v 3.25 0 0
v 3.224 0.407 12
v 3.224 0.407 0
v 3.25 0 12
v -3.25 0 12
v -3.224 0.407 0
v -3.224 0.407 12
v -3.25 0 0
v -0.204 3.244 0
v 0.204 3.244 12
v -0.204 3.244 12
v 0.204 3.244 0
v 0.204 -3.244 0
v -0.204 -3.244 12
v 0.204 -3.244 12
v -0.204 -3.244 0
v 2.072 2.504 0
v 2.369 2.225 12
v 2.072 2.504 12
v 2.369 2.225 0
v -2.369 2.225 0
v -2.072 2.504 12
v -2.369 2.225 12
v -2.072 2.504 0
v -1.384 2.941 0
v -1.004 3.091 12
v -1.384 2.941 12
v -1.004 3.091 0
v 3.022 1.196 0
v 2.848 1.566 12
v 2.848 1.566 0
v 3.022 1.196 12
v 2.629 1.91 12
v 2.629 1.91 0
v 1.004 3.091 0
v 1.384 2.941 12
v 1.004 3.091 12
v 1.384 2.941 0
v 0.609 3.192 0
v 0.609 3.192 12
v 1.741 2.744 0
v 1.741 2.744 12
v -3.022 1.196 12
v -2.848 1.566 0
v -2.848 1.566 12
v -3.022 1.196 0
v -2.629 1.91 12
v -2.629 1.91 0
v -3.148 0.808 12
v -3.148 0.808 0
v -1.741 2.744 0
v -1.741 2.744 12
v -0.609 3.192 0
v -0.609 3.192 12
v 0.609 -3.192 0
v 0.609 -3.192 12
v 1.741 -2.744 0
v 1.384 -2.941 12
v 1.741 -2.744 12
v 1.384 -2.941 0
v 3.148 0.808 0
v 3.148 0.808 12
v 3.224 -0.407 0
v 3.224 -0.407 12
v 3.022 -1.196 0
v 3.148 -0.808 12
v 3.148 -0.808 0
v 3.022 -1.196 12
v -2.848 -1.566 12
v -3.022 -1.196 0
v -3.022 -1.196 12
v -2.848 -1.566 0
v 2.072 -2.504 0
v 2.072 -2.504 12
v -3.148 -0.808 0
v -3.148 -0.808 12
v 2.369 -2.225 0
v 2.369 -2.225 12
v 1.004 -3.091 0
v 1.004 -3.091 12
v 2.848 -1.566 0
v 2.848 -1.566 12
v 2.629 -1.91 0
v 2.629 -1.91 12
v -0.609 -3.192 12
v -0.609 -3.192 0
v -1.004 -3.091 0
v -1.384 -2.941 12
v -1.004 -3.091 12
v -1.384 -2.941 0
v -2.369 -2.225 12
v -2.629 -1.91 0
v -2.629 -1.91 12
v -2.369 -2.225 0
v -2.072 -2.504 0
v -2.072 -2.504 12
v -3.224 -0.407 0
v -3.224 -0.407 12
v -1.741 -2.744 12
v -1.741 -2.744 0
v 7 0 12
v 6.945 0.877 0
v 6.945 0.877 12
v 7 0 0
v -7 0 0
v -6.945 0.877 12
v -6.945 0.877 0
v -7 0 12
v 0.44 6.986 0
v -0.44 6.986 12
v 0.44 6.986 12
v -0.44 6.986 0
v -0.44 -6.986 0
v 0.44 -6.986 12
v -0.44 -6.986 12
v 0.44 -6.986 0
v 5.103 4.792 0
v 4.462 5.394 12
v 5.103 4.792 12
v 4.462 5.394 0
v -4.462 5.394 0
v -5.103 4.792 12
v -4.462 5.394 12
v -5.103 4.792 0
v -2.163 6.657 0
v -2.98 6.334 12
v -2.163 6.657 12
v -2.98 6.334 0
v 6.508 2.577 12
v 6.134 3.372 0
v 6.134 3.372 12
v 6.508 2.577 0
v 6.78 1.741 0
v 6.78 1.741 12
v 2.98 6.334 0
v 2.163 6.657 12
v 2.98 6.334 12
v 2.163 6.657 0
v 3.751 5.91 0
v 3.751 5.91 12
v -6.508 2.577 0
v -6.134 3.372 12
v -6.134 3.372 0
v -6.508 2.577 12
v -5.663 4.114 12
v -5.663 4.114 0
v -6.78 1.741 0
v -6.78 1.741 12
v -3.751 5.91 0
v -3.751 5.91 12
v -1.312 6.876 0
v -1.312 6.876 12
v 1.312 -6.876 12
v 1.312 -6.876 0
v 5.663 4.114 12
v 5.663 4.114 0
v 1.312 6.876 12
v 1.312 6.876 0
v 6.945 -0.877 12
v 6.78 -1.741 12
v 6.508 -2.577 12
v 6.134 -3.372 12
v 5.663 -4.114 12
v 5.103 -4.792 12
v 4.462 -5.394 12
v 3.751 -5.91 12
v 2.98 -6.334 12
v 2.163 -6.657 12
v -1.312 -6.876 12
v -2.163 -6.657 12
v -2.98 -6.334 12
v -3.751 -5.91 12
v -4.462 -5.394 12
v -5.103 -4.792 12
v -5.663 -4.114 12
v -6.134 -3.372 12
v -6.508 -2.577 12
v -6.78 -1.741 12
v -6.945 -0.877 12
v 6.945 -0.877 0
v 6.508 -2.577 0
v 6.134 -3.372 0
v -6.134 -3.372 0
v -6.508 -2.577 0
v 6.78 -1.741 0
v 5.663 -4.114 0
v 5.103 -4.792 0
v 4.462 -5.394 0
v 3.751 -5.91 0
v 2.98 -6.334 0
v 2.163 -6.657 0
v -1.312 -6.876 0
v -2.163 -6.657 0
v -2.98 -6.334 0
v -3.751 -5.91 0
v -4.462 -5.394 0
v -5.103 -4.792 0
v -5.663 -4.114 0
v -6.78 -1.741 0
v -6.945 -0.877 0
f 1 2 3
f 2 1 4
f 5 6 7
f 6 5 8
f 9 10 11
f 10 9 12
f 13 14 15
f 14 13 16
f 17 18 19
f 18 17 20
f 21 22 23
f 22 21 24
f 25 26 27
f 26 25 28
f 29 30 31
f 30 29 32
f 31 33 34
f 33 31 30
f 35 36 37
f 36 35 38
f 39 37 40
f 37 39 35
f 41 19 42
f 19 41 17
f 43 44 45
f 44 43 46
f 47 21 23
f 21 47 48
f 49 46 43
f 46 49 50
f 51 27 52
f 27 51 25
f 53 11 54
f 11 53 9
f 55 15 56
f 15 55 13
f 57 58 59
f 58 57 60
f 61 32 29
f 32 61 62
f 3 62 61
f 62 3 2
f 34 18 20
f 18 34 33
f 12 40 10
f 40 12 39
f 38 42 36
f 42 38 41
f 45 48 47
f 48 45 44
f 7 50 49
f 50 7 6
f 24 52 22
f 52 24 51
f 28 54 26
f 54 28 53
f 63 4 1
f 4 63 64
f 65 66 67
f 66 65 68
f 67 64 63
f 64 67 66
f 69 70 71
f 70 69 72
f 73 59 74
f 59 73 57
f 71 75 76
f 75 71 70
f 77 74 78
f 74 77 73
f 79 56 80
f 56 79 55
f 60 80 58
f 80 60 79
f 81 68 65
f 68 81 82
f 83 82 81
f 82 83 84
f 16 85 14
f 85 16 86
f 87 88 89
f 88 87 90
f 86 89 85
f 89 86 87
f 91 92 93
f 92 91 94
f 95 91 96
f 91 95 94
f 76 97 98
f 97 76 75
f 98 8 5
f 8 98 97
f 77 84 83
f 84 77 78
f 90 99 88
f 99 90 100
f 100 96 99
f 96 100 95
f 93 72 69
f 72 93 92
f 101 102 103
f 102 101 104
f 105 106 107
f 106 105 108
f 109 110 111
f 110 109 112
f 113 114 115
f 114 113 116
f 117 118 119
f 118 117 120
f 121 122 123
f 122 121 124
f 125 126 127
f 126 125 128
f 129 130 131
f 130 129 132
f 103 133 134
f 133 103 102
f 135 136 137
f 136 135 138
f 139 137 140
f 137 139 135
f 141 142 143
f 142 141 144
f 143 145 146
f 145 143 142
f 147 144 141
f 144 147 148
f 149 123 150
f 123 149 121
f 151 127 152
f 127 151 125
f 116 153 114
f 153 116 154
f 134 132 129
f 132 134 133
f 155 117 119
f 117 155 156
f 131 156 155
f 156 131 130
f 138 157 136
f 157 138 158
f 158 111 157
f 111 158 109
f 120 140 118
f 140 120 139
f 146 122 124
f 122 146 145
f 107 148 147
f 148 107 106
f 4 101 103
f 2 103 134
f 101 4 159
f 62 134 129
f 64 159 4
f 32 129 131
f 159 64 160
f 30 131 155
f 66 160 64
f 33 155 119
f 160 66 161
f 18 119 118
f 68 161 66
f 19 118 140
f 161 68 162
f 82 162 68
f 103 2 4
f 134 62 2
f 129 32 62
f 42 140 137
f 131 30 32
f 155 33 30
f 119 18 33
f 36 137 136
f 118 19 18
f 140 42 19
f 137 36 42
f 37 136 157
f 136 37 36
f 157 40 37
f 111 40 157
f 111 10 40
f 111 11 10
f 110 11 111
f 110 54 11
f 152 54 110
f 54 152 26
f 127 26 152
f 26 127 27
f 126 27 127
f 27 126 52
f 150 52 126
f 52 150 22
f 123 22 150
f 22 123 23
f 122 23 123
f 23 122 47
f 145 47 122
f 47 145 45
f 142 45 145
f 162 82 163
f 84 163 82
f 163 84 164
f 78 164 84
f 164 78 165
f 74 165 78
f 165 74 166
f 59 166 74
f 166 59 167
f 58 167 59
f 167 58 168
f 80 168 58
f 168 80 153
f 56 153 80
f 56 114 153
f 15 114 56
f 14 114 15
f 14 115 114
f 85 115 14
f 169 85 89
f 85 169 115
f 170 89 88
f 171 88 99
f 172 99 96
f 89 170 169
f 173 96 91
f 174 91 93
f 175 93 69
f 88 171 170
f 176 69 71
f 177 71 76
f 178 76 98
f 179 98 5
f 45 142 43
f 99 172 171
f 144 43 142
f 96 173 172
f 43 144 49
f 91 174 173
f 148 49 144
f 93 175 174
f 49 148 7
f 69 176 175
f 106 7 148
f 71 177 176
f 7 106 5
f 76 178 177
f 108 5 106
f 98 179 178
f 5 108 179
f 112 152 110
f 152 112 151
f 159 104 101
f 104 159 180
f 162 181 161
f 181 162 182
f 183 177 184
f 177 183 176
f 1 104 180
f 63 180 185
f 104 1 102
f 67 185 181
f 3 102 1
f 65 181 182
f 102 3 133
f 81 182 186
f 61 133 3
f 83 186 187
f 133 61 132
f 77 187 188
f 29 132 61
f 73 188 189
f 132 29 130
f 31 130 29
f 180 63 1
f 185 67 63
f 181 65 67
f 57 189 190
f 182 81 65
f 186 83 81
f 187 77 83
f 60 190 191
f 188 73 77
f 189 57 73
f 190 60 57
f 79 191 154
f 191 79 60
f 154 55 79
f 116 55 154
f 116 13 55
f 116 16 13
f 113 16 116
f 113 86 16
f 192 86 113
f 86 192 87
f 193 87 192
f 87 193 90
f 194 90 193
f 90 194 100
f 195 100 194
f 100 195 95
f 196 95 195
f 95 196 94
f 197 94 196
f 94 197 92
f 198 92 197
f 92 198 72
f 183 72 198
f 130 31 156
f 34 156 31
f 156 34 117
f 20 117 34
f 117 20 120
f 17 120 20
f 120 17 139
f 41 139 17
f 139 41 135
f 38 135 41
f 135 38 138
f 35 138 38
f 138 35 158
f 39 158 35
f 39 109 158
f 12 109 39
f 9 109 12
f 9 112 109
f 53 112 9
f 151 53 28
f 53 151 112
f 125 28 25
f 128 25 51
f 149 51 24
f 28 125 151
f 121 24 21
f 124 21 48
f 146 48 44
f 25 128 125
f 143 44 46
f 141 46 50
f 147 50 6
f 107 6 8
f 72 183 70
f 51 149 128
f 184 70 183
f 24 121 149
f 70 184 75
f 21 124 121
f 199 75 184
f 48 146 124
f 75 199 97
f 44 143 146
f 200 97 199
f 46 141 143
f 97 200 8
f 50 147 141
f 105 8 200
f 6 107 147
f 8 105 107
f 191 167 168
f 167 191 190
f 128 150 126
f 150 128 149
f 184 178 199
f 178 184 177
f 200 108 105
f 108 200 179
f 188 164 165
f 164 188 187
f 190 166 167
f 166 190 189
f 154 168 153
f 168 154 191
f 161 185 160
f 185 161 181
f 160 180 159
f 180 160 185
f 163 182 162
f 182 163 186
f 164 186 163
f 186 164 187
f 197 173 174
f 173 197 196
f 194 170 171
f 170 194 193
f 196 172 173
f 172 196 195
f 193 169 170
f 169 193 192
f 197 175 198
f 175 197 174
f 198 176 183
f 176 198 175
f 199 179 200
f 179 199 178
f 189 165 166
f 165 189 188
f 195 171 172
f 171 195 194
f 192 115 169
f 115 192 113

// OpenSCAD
$fn = 50;


difference() {
	union() {
		cylinder(h = 12, r = 7.0000000000);
	}
	union() {
		translate(v = [0.0000000000, 0.0000000000, -100.0000000000]) {
			cylinder(h = 200, r = 3.2500000000);
		}
		translate(v = [0.0000000000, 0.0000000000, -100.0000000000]) {
			cylinder(h = 200, r = 3.2500000000);
		}
		translate(v = [0.0000000000, 0.0000000000, -100.0000000000]) {
			cylinder(h = 200, r = 3.2500000000);
		}
		translate(v = [0.0000000000, 0.0000000000, -100.0000000000]) {
			cylinder(h = 200, r = 3.2500000000);
		}
	}
}
